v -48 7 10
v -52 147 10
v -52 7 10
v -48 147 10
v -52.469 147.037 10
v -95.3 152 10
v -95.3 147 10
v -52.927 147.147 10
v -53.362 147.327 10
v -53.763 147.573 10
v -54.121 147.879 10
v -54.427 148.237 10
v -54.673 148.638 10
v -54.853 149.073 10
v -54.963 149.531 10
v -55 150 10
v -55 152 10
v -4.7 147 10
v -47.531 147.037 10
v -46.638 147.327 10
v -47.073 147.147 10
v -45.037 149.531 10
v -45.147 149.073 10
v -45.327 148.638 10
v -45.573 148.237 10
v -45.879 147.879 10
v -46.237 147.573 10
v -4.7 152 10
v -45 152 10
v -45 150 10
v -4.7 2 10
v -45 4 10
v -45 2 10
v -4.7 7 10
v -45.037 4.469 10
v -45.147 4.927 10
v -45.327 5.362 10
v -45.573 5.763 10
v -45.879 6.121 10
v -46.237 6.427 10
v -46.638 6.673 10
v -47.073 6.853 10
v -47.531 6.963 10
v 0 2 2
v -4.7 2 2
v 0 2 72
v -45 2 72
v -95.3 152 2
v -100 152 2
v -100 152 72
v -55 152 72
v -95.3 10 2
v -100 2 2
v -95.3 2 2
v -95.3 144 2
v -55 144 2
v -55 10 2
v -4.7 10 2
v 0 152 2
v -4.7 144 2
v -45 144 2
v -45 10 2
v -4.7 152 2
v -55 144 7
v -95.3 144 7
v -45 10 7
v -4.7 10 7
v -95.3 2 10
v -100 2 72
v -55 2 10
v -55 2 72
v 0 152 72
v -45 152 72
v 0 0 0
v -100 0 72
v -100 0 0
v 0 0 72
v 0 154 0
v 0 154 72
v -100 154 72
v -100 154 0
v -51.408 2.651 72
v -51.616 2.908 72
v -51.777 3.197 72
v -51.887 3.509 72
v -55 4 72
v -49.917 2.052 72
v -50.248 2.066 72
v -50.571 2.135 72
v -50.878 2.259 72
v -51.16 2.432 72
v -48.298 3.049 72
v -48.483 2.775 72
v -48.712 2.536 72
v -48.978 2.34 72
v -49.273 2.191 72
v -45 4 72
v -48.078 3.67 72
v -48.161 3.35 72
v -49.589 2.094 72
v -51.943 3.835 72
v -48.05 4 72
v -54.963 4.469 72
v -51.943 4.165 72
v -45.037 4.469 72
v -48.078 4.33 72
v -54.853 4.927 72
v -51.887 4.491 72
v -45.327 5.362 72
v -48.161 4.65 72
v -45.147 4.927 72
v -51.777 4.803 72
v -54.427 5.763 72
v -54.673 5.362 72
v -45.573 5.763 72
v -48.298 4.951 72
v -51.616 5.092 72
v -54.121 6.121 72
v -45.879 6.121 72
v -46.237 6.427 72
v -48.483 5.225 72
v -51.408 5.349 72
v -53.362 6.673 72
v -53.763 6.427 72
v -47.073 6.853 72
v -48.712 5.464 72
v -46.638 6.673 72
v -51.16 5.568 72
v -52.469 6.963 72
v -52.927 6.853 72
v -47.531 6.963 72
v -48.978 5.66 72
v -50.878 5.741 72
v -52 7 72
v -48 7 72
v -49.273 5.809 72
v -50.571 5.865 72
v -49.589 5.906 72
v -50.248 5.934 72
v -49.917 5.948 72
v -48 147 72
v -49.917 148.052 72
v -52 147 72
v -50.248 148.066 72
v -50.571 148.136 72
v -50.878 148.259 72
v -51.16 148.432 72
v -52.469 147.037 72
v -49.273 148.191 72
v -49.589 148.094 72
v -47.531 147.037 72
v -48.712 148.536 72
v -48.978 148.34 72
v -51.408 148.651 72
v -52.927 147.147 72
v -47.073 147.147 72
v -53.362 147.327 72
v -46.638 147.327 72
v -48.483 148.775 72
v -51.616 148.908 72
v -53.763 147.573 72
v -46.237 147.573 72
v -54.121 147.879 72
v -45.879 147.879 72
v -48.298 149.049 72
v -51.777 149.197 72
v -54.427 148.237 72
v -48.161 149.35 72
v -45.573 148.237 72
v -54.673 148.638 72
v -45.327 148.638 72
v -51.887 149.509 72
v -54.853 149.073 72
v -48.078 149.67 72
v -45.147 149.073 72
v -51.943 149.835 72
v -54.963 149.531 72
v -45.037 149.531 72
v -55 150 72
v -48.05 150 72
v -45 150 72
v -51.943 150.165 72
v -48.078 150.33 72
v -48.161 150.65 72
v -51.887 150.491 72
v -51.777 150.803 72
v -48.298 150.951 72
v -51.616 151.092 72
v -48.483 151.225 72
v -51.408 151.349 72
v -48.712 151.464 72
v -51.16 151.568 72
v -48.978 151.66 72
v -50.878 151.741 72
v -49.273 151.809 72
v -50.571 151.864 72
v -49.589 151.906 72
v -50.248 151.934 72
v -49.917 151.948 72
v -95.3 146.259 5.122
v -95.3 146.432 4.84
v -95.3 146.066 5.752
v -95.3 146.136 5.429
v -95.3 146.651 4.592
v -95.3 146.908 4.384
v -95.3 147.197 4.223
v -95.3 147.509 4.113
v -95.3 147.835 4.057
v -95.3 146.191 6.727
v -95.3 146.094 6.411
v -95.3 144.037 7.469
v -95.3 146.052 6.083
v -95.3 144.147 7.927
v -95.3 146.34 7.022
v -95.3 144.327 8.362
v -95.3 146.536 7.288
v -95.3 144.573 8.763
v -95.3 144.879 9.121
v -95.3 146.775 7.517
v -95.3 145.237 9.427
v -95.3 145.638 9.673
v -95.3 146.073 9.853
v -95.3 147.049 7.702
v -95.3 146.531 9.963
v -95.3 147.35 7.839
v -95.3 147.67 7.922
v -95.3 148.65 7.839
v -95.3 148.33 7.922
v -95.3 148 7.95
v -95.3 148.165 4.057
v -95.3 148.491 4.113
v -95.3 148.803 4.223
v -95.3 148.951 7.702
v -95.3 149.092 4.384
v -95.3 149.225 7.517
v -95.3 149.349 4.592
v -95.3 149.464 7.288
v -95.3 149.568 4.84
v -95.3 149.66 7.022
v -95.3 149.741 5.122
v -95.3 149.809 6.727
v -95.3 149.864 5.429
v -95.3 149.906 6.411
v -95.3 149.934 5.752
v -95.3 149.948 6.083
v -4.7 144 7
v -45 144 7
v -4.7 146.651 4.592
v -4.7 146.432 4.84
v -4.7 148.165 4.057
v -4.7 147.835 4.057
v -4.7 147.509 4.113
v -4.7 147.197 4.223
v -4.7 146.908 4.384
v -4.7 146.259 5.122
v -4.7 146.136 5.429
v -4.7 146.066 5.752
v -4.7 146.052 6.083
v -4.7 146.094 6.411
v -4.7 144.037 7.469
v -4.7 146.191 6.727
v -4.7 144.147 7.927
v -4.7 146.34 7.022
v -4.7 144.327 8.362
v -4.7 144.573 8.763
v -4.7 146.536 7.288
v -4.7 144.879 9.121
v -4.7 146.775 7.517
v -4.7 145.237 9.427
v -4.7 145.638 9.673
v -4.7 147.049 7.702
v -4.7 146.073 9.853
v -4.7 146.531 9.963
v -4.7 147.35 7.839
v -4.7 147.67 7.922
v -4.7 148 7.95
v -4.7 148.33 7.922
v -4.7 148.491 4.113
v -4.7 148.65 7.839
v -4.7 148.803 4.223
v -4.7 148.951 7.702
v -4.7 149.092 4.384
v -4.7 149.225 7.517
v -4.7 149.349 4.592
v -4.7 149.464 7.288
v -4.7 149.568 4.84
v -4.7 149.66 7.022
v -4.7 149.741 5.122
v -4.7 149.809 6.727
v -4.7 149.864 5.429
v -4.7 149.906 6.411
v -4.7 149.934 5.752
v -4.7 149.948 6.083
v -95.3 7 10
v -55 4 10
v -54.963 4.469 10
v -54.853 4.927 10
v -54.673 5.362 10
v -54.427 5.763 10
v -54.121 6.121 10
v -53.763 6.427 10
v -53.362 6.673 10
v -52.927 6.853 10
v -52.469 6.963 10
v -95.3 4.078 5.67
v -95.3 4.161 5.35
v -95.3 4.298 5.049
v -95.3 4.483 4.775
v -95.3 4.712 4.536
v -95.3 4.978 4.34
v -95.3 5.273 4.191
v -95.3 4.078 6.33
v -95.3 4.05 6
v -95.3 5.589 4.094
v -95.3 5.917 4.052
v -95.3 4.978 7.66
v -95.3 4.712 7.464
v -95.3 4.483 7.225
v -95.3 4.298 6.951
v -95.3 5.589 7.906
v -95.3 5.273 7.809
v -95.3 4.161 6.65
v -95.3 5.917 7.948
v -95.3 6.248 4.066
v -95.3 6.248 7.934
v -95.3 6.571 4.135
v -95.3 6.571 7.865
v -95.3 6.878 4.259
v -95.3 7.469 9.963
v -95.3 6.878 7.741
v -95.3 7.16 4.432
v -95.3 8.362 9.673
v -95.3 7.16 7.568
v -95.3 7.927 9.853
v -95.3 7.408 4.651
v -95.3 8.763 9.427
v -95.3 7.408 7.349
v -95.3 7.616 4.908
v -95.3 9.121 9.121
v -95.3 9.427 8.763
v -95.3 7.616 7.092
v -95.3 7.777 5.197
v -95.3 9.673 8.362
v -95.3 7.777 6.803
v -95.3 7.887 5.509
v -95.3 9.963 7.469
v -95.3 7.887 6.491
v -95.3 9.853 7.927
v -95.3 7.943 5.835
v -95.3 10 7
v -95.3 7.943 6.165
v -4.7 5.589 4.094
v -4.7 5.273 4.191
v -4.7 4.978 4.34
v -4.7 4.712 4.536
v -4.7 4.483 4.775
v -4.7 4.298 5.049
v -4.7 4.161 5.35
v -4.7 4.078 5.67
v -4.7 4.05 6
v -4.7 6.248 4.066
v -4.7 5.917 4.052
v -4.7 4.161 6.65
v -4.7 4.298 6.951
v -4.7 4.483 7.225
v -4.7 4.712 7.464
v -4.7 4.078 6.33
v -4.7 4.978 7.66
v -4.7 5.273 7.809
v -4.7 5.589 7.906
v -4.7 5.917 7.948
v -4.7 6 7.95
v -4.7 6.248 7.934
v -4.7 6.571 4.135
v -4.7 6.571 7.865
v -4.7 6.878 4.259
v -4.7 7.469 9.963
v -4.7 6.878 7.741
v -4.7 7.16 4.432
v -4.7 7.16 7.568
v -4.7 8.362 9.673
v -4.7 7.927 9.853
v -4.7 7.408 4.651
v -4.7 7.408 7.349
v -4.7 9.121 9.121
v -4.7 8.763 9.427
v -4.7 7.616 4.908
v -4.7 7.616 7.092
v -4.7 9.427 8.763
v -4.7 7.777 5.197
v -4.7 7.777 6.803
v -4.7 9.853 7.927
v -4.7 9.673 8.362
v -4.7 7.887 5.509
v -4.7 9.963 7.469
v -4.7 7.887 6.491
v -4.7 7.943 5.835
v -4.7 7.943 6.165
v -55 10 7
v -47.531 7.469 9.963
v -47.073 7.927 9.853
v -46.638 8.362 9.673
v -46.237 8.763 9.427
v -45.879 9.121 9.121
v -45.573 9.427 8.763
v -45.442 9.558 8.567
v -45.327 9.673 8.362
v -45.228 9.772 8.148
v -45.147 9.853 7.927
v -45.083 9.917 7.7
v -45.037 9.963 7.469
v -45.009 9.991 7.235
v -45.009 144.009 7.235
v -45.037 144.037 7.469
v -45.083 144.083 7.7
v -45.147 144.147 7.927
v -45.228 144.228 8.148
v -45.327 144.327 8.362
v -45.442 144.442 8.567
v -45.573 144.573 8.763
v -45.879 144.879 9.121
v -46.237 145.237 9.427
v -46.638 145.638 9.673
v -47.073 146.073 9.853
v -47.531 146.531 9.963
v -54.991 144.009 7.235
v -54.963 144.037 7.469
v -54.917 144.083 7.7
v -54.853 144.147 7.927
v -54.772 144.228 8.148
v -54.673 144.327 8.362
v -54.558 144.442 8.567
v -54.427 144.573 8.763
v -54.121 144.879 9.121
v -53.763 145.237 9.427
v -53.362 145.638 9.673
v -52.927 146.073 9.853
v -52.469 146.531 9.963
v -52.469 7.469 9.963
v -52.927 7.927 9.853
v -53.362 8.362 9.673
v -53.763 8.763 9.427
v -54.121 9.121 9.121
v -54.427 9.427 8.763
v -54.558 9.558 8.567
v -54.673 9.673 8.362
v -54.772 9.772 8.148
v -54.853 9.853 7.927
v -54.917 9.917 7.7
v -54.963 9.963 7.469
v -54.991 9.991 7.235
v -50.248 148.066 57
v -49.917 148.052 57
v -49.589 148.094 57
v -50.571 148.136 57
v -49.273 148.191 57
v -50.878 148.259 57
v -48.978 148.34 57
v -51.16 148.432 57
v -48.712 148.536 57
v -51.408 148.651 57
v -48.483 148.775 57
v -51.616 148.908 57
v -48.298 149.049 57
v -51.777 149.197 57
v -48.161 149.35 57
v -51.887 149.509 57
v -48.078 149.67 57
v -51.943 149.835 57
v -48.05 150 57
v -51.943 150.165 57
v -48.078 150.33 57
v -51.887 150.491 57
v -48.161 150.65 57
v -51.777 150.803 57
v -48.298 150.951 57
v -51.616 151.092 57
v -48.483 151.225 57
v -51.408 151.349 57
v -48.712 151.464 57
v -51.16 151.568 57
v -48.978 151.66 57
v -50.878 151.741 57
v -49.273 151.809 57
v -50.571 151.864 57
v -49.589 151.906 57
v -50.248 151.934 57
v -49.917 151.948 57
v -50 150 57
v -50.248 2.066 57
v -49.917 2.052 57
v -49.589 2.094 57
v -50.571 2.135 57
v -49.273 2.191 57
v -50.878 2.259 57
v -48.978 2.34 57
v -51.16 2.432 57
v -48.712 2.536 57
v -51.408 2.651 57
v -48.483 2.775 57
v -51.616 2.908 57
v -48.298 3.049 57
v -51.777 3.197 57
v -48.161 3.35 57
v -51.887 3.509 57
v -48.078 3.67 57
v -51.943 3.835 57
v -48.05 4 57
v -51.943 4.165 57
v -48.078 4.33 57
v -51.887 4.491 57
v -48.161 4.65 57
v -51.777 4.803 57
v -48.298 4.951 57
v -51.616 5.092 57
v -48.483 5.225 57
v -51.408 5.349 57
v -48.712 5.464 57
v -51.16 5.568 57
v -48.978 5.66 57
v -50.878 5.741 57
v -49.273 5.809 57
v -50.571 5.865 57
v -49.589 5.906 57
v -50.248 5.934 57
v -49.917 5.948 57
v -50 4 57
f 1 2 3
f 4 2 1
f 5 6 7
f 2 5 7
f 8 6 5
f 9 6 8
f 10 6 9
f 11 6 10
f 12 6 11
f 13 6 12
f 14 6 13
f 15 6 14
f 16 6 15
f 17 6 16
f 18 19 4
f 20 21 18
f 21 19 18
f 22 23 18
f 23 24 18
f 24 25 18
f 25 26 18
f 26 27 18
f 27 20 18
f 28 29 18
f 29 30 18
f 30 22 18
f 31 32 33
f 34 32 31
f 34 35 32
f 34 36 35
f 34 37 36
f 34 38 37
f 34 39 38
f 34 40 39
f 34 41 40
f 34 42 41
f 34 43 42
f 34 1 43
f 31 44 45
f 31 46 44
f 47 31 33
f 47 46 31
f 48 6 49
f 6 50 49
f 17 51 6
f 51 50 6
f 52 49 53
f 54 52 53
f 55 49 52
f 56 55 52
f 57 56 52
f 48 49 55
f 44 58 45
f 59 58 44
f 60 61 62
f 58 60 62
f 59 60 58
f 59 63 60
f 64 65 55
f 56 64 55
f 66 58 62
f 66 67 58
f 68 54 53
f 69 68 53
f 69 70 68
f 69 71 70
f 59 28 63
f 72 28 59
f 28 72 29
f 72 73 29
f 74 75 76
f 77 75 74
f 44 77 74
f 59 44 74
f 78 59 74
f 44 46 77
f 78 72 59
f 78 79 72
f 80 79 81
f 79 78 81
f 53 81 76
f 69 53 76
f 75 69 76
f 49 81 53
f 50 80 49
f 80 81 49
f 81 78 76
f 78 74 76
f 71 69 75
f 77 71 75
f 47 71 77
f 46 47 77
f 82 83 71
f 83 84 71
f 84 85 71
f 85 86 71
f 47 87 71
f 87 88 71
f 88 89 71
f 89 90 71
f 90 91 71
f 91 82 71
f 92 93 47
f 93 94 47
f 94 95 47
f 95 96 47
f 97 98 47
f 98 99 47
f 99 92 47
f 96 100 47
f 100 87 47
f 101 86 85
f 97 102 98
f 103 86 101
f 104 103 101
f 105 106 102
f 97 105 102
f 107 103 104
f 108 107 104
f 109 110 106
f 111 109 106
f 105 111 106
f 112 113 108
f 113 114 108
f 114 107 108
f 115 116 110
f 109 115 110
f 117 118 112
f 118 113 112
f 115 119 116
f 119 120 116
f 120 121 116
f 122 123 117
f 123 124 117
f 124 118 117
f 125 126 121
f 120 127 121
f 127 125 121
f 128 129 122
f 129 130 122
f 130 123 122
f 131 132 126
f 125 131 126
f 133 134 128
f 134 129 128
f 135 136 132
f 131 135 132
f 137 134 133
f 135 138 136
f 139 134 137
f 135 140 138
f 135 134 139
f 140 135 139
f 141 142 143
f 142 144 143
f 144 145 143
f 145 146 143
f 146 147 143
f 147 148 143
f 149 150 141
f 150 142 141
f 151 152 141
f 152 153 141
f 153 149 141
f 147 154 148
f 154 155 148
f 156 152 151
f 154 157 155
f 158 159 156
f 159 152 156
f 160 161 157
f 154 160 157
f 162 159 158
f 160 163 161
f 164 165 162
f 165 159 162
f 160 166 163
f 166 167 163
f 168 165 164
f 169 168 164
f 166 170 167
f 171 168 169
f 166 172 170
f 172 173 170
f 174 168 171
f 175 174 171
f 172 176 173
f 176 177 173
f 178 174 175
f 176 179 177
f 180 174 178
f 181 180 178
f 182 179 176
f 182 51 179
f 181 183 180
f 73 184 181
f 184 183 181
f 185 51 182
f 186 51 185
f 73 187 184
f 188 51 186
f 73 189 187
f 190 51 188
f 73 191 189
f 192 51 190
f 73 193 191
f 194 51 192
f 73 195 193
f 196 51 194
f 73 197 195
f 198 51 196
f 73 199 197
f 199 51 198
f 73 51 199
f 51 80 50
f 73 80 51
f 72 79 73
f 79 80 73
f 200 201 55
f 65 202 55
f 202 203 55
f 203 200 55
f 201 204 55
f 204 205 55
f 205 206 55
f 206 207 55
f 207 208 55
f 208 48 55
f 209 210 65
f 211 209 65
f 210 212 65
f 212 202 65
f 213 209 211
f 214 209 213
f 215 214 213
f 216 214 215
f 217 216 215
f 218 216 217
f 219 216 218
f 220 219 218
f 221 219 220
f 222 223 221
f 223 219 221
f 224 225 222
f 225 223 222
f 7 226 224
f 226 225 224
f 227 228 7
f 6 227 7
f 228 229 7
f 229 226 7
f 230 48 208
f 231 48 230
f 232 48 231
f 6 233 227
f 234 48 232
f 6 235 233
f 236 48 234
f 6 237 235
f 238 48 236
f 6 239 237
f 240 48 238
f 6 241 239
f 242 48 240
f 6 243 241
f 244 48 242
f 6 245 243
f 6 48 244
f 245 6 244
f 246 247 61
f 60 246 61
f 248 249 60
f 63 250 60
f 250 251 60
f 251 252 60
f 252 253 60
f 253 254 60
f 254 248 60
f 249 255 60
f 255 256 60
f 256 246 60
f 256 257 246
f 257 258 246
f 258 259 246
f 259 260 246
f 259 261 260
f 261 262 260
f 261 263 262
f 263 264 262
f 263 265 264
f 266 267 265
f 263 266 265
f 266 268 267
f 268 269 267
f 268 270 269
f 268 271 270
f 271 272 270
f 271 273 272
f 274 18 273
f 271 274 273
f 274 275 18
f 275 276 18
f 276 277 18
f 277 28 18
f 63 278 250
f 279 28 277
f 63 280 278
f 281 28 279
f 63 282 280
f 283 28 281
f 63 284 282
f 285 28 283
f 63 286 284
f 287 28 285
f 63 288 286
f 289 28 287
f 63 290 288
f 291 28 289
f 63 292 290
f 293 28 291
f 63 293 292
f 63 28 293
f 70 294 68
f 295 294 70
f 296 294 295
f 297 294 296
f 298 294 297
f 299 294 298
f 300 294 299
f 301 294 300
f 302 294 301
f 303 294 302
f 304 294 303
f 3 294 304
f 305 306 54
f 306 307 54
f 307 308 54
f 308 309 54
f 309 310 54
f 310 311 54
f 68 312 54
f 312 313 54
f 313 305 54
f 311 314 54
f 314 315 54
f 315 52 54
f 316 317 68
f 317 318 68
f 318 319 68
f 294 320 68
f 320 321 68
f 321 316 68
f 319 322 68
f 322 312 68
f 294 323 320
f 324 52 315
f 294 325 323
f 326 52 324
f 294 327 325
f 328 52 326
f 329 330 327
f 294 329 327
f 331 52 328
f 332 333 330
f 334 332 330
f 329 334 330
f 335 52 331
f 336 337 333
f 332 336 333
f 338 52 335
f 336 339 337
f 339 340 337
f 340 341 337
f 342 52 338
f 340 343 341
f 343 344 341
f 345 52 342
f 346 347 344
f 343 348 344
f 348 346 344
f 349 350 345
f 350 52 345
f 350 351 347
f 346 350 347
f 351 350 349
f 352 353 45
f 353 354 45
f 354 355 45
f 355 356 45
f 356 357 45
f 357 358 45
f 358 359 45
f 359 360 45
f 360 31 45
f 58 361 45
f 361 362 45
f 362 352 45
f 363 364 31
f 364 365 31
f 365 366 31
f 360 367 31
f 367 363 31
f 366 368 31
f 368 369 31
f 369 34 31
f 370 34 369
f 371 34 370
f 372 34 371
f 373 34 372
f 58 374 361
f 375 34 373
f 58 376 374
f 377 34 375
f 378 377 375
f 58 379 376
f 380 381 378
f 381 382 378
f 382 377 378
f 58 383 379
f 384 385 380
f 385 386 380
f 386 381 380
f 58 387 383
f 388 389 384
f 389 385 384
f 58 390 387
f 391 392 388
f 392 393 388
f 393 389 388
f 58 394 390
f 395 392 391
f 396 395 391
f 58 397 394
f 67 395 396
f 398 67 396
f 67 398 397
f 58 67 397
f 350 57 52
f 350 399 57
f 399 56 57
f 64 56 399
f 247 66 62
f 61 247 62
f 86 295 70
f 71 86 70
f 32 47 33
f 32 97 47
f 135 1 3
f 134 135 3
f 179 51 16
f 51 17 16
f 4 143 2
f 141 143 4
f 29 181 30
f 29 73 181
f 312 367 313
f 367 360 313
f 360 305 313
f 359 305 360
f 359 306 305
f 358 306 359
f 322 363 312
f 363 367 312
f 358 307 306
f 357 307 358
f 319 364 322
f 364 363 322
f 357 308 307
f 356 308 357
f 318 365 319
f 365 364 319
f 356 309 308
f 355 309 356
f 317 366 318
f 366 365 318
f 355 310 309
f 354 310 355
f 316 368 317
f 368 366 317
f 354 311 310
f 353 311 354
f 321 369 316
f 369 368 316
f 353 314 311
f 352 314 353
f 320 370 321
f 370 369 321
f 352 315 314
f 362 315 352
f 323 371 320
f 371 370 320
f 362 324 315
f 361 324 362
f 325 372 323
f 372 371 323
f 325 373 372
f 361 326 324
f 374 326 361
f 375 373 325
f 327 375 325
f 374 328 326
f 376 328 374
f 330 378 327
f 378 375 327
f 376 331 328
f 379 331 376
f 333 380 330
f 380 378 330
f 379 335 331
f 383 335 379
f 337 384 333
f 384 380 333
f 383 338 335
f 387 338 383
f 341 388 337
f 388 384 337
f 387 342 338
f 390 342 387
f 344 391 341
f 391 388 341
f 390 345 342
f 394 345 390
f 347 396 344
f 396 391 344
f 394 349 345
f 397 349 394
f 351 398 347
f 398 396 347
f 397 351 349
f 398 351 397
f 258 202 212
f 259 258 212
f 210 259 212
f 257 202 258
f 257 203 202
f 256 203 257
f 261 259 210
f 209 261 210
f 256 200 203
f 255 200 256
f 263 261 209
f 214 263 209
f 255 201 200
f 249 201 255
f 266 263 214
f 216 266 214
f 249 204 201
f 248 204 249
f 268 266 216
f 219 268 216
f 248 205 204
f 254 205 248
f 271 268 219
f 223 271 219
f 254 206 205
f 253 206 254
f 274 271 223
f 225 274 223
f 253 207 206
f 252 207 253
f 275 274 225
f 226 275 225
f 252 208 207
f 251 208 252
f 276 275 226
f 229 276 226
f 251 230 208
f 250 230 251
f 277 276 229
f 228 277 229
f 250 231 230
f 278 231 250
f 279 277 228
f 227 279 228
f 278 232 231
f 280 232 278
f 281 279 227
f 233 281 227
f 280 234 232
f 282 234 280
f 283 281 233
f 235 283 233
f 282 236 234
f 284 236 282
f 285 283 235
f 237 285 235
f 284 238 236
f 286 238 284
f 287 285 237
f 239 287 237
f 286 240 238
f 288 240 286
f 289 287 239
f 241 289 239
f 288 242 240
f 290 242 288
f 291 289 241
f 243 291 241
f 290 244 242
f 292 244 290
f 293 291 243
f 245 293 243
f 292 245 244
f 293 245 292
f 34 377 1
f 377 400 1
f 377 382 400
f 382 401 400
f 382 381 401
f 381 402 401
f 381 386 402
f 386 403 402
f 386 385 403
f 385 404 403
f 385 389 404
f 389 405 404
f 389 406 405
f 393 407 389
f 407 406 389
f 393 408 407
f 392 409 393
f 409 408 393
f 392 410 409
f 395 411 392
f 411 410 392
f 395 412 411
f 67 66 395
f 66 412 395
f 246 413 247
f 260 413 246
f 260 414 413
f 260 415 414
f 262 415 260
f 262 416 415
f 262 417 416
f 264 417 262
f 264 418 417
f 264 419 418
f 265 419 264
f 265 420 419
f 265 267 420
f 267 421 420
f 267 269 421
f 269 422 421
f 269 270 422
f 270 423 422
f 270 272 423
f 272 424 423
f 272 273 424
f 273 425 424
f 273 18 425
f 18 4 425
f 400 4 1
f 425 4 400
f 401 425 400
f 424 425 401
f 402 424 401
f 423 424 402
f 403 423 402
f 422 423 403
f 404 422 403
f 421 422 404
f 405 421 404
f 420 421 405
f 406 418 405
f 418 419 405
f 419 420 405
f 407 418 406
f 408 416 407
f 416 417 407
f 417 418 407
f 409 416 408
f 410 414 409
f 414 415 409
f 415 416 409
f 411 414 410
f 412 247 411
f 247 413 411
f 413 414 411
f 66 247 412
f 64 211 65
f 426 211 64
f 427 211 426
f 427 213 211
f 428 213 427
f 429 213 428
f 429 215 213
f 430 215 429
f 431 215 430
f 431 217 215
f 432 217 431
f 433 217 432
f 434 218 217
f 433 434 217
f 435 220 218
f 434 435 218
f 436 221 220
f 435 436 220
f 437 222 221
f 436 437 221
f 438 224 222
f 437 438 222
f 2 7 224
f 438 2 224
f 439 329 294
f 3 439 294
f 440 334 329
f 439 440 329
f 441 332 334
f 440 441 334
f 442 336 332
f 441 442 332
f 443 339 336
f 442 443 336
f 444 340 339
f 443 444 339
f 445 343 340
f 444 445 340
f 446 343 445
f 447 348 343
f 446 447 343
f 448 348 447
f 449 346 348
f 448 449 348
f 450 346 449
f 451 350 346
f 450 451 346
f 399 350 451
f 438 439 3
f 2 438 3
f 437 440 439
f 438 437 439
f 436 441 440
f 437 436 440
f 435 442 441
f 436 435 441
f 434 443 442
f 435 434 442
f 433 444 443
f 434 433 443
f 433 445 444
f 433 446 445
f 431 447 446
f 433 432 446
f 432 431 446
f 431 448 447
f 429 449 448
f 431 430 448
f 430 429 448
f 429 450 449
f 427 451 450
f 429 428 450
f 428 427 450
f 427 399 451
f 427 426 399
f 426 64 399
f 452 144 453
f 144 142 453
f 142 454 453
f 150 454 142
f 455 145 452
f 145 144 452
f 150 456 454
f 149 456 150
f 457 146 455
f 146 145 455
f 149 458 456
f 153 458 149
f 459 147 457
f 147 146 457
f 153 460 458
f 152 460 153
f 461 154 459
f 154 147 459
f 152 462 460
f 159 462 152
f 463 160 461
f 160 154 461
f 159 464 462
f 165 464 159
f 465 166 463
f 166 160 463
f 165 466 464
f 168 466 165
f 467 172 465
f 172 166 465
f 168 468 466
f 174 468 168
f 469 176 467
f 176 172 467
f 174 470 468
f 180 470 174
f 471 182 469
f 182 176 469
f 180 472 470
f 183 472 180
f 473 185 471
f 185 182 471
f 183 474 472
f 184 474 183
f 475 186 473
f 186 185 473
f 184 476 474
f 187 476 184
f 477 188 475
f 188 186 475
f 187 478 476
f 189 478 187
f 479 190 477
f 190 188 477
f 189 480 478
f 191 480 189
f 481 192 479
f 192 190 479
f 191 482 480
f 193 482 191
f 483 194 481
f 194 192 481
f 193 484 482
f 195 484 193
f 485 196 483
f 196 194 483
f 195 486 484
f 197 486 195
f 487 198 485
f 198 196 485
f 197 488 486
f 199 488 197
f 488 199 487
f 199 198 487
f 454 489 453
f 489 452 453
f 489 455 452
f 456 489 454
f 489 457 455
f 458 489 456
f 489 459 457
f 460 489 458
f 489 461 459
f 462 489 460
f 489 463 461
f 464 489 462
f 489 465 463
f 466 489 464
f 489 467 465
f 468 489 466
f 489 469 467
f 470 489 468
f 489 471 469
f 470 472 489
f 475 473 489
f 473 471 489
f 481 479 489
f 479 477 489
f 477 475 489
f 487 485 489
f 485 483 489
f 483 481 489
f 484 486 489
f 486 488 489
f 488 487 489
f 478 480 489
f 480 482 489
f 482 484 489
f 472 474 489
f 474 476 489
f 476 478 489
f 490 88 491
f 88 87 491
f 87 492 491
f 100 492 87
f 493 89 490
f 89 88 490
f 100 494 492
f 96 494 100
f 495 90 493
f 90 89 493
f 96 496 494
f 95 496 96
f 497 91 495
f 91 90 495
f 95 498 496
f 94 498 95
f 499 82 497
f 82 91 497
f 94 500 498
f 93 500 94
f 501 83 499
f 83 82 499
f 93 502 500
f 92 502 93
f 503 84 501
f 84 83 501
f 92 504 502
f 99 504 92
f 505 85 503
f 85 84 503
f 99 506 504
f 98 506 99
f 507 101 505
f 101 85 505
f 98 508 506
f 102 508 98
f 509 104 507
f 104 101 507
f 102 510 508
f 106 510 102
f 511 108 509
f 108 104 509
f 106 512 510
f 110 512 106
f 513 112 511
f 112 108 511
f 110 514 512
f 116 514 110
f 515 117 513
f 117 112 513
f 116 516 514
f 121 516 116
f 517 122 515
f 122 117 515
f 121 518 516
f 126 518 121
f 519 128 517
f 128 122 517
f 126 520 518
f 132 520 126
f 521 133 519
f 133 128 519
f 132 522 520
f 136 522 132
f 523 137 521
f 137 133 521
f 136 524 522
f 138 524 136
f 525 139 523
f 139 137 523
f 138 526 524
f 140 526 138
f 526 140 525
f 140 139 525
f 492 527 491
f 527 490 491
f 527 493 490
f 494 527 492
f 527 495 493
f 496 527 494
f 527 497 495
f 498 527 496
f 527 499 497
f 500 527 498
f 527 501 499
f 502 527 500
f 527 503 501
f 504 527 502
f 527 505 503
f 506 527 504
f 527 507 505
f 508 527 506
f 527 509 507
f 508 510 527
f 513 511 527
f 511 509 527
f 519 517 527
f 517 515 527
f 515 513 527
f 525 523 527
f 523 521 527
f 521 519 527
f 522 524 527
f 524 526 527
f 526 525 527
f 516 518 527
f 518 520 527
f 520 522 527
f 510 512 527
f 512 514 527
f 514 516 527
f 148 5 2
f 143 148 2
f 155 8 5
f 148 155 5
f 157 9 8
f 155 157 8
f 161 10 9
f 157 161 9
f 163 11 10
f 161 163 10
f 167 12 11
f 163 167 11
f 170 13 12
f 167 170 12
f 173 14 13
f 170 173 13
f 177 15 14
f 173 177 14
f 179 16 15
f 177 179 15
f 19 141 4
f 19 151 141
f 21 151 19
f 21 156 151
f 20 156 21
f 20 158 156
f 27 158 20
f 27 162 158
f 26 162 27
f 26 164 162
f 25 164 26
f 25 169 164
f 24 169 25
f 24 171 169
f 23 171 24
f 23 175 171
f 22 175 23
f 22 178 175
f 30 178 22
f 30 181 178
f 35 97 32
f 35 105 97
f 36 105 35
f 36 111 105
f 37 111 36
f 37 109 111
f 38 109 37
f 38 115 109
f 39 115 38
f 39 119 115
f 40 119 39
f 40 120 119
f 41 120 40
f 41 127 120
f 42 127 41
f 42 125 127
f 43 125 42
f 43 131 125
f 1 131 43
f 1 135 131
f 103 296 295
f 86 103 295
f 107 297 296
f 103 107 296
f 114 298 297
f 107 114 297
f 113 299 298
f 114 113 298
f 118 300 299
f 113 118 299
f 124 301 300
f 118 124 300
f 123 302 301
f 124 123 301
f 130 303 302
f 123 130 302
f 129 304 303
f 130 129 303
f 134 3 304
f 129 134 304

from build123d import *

# Parameters (mm, degrees)
SKETCH1_W           = 154
SKETCH1_H           = 100
BOSS_EXTRUDE1_DEPTH = 2
SKETCH2_W           = 100
SKETCH2_H           = 2
BOSS_EXTRUDE2_DEPTH = 70
SKETCH3_W           = 90.6
SKETCH3_H           = 8
BOSS_EXTRUDE3_DEPTH = 8
SKETCH4_W           = 10
SKETCH4_H           = 134
BOSS_EXTRUDE4_DEPTH = 8
SKETCH5_W           = 10
SKETCH5_H           = 5
BOSS_EXTRUDE5_DEPTH = 62
SKETCH6_R           = 1.95
CUT_EXTRUDE1_DEPTH  = 195.889943301
SKETCH7_R           = 1.95
CUT_EXTRUDE2_DEPTH  = 195.889943301
FILLET1_R           = 3
SKETCH8_R           = 1.95
CUT_EXTRUDE3_DEPTH  = 15
SKETCH9_R           = 1.95
CUT_EXTRUDE4_DEPTH  = 15
FILLET2_R           = 3


with BuildPart() as part:
    # Sketch1 → Boss-Extrude1 (new body)
    with BuildSketch(Plane(origin=(0, 0, 0), x_dir=(0, 1, 0), z_dir=(0, 0, 1))):
        with Locations((77, 50)):
            Rectangle(SKETCH1_W, SKETCH1_H)
    extrude(amount=BOSS_EXTRUDE1_DEPTH)

    # Sketch2 → Boss-Extrude2 (add)
    with BuildSketch(Plane.XY.offset(2)):
        with Locations((-50, 153)):
            Rectangle(SKETCH2_W, SKETCH2_H)
        with Locations((-50, 1)):
            Rectangle(SKETCH2_W, SKETCH2_H)
    extrude(amount=BOSS_EXTRUDE2_DEPTH)

    # Sketch3 → Boss-Extrude3 (add)
    with BuildSketch(Plane.XY.offset(2)):
        with Locations((-50, 148)):
            Rectangle(SKETCH3_W, SKETCH3_H)
        with Locations((-50, 6)):
            Rectangle(SKETCH3_W, SKETCH3_H)
    extrude(amount=BOSS_EXTRUDE3_DEPTH)

    # Sketch4 → Boss-Extrude4 (add)
    with BuildSketch(Plane.XY.offset(2)):
        with Locations((-50, 77)):
            Rectangle(SKETCH4_W, SKETCH4_H)
    extrude(amount=BOSS_EXTRUDE4_DEPTH)

    # Sketch5 → Boss-Extrude5 (add)
    with BuildSketch(Plane.XY.offset(10)):
        with Locations((-50, 149.5)):
            Rectangle(SKETCH5_W, SKETCH5_H)
        with Locations((-50, 4.5)):
            Rectangle(SKETCH5_W, SKETCH5_H)
    extrude(amount=BOSS_EXTRUDE5_DEPTH)

    # Sketch6 → Cut-Extrude1 (cut, through all)
    with BuildSketch(Plane(origin=(-95.3, 0, 0), x_dir=(0, -1, 0), z_dir=(-1, 0, 0))):
        with Locations((-6, 6)):
            Circle(SKETCH6_R)
    extrude(amount=-CUT_EXTRUDE1_DEPTH, mode=Mode.SUBTRACT)

    # Sketch7 → Cut-Extrude2 (cut, through all)
    with BuildSketch(Plane(origin=(-95.3, 0, 0), x_dir=(0, -1, 0), z_dir=(-1, 0, 0))):
        with Locations(Location((-148, 6, 0), (0, 0, 90))):
            Circle(SKETCH7_R)
    extrude(amount=-CUT_EXTRUDE2_DEPTH, mode=Mode.SUBTRACT)

    # Fillet1
    fillet1_edges = [part.edges().sort_by_distance(p)[0] for p in [
        (-75.15, 144, 10),
        (-24.85, 10, 10),
        (-75.15, 10, 10),
        (-24.85, 144, 10),
        (-55, 77, 10),
        (-45, 77, 10),
    ]]
    fillet(fillet1_edges, radius=FILLET1_R - 0.0001)  # a hair under: the kernel refuses the full size

    # Sketch8 → Cut-Extrude3 (cut)
    with BuildSketch(Plane.XY.offset(72)):
        with Locations((-50, 150)):
            Circle(SKETCH8_R)
    extrude(amount=-CUT_EXTRUDE3_DEPTH, mode=Mode.SUBTRACT)

    # Sketch9 → Cut-Extrude4 (cut)
    with BuildSketch(Plane.XY.offset(72)):
        with Locations((-50, 4)):
            Circle(SKETCH9_R)
    extrude(amount=-CUT_EXTRUDE4_DEPTH, mode=Mode.SUBTRACT)

    # Fillet2
    fillet2_edges = [part.edges().sort_by_distance(p)[0] for p in [
        (-45, 7, 41),
        (-55, 147, 41),
        (-45, 147, 41),
        (-55, 7, 41),
    ]]
    fillet(fillet2_edges, radius=FILLET2_R)


solid = part.part
